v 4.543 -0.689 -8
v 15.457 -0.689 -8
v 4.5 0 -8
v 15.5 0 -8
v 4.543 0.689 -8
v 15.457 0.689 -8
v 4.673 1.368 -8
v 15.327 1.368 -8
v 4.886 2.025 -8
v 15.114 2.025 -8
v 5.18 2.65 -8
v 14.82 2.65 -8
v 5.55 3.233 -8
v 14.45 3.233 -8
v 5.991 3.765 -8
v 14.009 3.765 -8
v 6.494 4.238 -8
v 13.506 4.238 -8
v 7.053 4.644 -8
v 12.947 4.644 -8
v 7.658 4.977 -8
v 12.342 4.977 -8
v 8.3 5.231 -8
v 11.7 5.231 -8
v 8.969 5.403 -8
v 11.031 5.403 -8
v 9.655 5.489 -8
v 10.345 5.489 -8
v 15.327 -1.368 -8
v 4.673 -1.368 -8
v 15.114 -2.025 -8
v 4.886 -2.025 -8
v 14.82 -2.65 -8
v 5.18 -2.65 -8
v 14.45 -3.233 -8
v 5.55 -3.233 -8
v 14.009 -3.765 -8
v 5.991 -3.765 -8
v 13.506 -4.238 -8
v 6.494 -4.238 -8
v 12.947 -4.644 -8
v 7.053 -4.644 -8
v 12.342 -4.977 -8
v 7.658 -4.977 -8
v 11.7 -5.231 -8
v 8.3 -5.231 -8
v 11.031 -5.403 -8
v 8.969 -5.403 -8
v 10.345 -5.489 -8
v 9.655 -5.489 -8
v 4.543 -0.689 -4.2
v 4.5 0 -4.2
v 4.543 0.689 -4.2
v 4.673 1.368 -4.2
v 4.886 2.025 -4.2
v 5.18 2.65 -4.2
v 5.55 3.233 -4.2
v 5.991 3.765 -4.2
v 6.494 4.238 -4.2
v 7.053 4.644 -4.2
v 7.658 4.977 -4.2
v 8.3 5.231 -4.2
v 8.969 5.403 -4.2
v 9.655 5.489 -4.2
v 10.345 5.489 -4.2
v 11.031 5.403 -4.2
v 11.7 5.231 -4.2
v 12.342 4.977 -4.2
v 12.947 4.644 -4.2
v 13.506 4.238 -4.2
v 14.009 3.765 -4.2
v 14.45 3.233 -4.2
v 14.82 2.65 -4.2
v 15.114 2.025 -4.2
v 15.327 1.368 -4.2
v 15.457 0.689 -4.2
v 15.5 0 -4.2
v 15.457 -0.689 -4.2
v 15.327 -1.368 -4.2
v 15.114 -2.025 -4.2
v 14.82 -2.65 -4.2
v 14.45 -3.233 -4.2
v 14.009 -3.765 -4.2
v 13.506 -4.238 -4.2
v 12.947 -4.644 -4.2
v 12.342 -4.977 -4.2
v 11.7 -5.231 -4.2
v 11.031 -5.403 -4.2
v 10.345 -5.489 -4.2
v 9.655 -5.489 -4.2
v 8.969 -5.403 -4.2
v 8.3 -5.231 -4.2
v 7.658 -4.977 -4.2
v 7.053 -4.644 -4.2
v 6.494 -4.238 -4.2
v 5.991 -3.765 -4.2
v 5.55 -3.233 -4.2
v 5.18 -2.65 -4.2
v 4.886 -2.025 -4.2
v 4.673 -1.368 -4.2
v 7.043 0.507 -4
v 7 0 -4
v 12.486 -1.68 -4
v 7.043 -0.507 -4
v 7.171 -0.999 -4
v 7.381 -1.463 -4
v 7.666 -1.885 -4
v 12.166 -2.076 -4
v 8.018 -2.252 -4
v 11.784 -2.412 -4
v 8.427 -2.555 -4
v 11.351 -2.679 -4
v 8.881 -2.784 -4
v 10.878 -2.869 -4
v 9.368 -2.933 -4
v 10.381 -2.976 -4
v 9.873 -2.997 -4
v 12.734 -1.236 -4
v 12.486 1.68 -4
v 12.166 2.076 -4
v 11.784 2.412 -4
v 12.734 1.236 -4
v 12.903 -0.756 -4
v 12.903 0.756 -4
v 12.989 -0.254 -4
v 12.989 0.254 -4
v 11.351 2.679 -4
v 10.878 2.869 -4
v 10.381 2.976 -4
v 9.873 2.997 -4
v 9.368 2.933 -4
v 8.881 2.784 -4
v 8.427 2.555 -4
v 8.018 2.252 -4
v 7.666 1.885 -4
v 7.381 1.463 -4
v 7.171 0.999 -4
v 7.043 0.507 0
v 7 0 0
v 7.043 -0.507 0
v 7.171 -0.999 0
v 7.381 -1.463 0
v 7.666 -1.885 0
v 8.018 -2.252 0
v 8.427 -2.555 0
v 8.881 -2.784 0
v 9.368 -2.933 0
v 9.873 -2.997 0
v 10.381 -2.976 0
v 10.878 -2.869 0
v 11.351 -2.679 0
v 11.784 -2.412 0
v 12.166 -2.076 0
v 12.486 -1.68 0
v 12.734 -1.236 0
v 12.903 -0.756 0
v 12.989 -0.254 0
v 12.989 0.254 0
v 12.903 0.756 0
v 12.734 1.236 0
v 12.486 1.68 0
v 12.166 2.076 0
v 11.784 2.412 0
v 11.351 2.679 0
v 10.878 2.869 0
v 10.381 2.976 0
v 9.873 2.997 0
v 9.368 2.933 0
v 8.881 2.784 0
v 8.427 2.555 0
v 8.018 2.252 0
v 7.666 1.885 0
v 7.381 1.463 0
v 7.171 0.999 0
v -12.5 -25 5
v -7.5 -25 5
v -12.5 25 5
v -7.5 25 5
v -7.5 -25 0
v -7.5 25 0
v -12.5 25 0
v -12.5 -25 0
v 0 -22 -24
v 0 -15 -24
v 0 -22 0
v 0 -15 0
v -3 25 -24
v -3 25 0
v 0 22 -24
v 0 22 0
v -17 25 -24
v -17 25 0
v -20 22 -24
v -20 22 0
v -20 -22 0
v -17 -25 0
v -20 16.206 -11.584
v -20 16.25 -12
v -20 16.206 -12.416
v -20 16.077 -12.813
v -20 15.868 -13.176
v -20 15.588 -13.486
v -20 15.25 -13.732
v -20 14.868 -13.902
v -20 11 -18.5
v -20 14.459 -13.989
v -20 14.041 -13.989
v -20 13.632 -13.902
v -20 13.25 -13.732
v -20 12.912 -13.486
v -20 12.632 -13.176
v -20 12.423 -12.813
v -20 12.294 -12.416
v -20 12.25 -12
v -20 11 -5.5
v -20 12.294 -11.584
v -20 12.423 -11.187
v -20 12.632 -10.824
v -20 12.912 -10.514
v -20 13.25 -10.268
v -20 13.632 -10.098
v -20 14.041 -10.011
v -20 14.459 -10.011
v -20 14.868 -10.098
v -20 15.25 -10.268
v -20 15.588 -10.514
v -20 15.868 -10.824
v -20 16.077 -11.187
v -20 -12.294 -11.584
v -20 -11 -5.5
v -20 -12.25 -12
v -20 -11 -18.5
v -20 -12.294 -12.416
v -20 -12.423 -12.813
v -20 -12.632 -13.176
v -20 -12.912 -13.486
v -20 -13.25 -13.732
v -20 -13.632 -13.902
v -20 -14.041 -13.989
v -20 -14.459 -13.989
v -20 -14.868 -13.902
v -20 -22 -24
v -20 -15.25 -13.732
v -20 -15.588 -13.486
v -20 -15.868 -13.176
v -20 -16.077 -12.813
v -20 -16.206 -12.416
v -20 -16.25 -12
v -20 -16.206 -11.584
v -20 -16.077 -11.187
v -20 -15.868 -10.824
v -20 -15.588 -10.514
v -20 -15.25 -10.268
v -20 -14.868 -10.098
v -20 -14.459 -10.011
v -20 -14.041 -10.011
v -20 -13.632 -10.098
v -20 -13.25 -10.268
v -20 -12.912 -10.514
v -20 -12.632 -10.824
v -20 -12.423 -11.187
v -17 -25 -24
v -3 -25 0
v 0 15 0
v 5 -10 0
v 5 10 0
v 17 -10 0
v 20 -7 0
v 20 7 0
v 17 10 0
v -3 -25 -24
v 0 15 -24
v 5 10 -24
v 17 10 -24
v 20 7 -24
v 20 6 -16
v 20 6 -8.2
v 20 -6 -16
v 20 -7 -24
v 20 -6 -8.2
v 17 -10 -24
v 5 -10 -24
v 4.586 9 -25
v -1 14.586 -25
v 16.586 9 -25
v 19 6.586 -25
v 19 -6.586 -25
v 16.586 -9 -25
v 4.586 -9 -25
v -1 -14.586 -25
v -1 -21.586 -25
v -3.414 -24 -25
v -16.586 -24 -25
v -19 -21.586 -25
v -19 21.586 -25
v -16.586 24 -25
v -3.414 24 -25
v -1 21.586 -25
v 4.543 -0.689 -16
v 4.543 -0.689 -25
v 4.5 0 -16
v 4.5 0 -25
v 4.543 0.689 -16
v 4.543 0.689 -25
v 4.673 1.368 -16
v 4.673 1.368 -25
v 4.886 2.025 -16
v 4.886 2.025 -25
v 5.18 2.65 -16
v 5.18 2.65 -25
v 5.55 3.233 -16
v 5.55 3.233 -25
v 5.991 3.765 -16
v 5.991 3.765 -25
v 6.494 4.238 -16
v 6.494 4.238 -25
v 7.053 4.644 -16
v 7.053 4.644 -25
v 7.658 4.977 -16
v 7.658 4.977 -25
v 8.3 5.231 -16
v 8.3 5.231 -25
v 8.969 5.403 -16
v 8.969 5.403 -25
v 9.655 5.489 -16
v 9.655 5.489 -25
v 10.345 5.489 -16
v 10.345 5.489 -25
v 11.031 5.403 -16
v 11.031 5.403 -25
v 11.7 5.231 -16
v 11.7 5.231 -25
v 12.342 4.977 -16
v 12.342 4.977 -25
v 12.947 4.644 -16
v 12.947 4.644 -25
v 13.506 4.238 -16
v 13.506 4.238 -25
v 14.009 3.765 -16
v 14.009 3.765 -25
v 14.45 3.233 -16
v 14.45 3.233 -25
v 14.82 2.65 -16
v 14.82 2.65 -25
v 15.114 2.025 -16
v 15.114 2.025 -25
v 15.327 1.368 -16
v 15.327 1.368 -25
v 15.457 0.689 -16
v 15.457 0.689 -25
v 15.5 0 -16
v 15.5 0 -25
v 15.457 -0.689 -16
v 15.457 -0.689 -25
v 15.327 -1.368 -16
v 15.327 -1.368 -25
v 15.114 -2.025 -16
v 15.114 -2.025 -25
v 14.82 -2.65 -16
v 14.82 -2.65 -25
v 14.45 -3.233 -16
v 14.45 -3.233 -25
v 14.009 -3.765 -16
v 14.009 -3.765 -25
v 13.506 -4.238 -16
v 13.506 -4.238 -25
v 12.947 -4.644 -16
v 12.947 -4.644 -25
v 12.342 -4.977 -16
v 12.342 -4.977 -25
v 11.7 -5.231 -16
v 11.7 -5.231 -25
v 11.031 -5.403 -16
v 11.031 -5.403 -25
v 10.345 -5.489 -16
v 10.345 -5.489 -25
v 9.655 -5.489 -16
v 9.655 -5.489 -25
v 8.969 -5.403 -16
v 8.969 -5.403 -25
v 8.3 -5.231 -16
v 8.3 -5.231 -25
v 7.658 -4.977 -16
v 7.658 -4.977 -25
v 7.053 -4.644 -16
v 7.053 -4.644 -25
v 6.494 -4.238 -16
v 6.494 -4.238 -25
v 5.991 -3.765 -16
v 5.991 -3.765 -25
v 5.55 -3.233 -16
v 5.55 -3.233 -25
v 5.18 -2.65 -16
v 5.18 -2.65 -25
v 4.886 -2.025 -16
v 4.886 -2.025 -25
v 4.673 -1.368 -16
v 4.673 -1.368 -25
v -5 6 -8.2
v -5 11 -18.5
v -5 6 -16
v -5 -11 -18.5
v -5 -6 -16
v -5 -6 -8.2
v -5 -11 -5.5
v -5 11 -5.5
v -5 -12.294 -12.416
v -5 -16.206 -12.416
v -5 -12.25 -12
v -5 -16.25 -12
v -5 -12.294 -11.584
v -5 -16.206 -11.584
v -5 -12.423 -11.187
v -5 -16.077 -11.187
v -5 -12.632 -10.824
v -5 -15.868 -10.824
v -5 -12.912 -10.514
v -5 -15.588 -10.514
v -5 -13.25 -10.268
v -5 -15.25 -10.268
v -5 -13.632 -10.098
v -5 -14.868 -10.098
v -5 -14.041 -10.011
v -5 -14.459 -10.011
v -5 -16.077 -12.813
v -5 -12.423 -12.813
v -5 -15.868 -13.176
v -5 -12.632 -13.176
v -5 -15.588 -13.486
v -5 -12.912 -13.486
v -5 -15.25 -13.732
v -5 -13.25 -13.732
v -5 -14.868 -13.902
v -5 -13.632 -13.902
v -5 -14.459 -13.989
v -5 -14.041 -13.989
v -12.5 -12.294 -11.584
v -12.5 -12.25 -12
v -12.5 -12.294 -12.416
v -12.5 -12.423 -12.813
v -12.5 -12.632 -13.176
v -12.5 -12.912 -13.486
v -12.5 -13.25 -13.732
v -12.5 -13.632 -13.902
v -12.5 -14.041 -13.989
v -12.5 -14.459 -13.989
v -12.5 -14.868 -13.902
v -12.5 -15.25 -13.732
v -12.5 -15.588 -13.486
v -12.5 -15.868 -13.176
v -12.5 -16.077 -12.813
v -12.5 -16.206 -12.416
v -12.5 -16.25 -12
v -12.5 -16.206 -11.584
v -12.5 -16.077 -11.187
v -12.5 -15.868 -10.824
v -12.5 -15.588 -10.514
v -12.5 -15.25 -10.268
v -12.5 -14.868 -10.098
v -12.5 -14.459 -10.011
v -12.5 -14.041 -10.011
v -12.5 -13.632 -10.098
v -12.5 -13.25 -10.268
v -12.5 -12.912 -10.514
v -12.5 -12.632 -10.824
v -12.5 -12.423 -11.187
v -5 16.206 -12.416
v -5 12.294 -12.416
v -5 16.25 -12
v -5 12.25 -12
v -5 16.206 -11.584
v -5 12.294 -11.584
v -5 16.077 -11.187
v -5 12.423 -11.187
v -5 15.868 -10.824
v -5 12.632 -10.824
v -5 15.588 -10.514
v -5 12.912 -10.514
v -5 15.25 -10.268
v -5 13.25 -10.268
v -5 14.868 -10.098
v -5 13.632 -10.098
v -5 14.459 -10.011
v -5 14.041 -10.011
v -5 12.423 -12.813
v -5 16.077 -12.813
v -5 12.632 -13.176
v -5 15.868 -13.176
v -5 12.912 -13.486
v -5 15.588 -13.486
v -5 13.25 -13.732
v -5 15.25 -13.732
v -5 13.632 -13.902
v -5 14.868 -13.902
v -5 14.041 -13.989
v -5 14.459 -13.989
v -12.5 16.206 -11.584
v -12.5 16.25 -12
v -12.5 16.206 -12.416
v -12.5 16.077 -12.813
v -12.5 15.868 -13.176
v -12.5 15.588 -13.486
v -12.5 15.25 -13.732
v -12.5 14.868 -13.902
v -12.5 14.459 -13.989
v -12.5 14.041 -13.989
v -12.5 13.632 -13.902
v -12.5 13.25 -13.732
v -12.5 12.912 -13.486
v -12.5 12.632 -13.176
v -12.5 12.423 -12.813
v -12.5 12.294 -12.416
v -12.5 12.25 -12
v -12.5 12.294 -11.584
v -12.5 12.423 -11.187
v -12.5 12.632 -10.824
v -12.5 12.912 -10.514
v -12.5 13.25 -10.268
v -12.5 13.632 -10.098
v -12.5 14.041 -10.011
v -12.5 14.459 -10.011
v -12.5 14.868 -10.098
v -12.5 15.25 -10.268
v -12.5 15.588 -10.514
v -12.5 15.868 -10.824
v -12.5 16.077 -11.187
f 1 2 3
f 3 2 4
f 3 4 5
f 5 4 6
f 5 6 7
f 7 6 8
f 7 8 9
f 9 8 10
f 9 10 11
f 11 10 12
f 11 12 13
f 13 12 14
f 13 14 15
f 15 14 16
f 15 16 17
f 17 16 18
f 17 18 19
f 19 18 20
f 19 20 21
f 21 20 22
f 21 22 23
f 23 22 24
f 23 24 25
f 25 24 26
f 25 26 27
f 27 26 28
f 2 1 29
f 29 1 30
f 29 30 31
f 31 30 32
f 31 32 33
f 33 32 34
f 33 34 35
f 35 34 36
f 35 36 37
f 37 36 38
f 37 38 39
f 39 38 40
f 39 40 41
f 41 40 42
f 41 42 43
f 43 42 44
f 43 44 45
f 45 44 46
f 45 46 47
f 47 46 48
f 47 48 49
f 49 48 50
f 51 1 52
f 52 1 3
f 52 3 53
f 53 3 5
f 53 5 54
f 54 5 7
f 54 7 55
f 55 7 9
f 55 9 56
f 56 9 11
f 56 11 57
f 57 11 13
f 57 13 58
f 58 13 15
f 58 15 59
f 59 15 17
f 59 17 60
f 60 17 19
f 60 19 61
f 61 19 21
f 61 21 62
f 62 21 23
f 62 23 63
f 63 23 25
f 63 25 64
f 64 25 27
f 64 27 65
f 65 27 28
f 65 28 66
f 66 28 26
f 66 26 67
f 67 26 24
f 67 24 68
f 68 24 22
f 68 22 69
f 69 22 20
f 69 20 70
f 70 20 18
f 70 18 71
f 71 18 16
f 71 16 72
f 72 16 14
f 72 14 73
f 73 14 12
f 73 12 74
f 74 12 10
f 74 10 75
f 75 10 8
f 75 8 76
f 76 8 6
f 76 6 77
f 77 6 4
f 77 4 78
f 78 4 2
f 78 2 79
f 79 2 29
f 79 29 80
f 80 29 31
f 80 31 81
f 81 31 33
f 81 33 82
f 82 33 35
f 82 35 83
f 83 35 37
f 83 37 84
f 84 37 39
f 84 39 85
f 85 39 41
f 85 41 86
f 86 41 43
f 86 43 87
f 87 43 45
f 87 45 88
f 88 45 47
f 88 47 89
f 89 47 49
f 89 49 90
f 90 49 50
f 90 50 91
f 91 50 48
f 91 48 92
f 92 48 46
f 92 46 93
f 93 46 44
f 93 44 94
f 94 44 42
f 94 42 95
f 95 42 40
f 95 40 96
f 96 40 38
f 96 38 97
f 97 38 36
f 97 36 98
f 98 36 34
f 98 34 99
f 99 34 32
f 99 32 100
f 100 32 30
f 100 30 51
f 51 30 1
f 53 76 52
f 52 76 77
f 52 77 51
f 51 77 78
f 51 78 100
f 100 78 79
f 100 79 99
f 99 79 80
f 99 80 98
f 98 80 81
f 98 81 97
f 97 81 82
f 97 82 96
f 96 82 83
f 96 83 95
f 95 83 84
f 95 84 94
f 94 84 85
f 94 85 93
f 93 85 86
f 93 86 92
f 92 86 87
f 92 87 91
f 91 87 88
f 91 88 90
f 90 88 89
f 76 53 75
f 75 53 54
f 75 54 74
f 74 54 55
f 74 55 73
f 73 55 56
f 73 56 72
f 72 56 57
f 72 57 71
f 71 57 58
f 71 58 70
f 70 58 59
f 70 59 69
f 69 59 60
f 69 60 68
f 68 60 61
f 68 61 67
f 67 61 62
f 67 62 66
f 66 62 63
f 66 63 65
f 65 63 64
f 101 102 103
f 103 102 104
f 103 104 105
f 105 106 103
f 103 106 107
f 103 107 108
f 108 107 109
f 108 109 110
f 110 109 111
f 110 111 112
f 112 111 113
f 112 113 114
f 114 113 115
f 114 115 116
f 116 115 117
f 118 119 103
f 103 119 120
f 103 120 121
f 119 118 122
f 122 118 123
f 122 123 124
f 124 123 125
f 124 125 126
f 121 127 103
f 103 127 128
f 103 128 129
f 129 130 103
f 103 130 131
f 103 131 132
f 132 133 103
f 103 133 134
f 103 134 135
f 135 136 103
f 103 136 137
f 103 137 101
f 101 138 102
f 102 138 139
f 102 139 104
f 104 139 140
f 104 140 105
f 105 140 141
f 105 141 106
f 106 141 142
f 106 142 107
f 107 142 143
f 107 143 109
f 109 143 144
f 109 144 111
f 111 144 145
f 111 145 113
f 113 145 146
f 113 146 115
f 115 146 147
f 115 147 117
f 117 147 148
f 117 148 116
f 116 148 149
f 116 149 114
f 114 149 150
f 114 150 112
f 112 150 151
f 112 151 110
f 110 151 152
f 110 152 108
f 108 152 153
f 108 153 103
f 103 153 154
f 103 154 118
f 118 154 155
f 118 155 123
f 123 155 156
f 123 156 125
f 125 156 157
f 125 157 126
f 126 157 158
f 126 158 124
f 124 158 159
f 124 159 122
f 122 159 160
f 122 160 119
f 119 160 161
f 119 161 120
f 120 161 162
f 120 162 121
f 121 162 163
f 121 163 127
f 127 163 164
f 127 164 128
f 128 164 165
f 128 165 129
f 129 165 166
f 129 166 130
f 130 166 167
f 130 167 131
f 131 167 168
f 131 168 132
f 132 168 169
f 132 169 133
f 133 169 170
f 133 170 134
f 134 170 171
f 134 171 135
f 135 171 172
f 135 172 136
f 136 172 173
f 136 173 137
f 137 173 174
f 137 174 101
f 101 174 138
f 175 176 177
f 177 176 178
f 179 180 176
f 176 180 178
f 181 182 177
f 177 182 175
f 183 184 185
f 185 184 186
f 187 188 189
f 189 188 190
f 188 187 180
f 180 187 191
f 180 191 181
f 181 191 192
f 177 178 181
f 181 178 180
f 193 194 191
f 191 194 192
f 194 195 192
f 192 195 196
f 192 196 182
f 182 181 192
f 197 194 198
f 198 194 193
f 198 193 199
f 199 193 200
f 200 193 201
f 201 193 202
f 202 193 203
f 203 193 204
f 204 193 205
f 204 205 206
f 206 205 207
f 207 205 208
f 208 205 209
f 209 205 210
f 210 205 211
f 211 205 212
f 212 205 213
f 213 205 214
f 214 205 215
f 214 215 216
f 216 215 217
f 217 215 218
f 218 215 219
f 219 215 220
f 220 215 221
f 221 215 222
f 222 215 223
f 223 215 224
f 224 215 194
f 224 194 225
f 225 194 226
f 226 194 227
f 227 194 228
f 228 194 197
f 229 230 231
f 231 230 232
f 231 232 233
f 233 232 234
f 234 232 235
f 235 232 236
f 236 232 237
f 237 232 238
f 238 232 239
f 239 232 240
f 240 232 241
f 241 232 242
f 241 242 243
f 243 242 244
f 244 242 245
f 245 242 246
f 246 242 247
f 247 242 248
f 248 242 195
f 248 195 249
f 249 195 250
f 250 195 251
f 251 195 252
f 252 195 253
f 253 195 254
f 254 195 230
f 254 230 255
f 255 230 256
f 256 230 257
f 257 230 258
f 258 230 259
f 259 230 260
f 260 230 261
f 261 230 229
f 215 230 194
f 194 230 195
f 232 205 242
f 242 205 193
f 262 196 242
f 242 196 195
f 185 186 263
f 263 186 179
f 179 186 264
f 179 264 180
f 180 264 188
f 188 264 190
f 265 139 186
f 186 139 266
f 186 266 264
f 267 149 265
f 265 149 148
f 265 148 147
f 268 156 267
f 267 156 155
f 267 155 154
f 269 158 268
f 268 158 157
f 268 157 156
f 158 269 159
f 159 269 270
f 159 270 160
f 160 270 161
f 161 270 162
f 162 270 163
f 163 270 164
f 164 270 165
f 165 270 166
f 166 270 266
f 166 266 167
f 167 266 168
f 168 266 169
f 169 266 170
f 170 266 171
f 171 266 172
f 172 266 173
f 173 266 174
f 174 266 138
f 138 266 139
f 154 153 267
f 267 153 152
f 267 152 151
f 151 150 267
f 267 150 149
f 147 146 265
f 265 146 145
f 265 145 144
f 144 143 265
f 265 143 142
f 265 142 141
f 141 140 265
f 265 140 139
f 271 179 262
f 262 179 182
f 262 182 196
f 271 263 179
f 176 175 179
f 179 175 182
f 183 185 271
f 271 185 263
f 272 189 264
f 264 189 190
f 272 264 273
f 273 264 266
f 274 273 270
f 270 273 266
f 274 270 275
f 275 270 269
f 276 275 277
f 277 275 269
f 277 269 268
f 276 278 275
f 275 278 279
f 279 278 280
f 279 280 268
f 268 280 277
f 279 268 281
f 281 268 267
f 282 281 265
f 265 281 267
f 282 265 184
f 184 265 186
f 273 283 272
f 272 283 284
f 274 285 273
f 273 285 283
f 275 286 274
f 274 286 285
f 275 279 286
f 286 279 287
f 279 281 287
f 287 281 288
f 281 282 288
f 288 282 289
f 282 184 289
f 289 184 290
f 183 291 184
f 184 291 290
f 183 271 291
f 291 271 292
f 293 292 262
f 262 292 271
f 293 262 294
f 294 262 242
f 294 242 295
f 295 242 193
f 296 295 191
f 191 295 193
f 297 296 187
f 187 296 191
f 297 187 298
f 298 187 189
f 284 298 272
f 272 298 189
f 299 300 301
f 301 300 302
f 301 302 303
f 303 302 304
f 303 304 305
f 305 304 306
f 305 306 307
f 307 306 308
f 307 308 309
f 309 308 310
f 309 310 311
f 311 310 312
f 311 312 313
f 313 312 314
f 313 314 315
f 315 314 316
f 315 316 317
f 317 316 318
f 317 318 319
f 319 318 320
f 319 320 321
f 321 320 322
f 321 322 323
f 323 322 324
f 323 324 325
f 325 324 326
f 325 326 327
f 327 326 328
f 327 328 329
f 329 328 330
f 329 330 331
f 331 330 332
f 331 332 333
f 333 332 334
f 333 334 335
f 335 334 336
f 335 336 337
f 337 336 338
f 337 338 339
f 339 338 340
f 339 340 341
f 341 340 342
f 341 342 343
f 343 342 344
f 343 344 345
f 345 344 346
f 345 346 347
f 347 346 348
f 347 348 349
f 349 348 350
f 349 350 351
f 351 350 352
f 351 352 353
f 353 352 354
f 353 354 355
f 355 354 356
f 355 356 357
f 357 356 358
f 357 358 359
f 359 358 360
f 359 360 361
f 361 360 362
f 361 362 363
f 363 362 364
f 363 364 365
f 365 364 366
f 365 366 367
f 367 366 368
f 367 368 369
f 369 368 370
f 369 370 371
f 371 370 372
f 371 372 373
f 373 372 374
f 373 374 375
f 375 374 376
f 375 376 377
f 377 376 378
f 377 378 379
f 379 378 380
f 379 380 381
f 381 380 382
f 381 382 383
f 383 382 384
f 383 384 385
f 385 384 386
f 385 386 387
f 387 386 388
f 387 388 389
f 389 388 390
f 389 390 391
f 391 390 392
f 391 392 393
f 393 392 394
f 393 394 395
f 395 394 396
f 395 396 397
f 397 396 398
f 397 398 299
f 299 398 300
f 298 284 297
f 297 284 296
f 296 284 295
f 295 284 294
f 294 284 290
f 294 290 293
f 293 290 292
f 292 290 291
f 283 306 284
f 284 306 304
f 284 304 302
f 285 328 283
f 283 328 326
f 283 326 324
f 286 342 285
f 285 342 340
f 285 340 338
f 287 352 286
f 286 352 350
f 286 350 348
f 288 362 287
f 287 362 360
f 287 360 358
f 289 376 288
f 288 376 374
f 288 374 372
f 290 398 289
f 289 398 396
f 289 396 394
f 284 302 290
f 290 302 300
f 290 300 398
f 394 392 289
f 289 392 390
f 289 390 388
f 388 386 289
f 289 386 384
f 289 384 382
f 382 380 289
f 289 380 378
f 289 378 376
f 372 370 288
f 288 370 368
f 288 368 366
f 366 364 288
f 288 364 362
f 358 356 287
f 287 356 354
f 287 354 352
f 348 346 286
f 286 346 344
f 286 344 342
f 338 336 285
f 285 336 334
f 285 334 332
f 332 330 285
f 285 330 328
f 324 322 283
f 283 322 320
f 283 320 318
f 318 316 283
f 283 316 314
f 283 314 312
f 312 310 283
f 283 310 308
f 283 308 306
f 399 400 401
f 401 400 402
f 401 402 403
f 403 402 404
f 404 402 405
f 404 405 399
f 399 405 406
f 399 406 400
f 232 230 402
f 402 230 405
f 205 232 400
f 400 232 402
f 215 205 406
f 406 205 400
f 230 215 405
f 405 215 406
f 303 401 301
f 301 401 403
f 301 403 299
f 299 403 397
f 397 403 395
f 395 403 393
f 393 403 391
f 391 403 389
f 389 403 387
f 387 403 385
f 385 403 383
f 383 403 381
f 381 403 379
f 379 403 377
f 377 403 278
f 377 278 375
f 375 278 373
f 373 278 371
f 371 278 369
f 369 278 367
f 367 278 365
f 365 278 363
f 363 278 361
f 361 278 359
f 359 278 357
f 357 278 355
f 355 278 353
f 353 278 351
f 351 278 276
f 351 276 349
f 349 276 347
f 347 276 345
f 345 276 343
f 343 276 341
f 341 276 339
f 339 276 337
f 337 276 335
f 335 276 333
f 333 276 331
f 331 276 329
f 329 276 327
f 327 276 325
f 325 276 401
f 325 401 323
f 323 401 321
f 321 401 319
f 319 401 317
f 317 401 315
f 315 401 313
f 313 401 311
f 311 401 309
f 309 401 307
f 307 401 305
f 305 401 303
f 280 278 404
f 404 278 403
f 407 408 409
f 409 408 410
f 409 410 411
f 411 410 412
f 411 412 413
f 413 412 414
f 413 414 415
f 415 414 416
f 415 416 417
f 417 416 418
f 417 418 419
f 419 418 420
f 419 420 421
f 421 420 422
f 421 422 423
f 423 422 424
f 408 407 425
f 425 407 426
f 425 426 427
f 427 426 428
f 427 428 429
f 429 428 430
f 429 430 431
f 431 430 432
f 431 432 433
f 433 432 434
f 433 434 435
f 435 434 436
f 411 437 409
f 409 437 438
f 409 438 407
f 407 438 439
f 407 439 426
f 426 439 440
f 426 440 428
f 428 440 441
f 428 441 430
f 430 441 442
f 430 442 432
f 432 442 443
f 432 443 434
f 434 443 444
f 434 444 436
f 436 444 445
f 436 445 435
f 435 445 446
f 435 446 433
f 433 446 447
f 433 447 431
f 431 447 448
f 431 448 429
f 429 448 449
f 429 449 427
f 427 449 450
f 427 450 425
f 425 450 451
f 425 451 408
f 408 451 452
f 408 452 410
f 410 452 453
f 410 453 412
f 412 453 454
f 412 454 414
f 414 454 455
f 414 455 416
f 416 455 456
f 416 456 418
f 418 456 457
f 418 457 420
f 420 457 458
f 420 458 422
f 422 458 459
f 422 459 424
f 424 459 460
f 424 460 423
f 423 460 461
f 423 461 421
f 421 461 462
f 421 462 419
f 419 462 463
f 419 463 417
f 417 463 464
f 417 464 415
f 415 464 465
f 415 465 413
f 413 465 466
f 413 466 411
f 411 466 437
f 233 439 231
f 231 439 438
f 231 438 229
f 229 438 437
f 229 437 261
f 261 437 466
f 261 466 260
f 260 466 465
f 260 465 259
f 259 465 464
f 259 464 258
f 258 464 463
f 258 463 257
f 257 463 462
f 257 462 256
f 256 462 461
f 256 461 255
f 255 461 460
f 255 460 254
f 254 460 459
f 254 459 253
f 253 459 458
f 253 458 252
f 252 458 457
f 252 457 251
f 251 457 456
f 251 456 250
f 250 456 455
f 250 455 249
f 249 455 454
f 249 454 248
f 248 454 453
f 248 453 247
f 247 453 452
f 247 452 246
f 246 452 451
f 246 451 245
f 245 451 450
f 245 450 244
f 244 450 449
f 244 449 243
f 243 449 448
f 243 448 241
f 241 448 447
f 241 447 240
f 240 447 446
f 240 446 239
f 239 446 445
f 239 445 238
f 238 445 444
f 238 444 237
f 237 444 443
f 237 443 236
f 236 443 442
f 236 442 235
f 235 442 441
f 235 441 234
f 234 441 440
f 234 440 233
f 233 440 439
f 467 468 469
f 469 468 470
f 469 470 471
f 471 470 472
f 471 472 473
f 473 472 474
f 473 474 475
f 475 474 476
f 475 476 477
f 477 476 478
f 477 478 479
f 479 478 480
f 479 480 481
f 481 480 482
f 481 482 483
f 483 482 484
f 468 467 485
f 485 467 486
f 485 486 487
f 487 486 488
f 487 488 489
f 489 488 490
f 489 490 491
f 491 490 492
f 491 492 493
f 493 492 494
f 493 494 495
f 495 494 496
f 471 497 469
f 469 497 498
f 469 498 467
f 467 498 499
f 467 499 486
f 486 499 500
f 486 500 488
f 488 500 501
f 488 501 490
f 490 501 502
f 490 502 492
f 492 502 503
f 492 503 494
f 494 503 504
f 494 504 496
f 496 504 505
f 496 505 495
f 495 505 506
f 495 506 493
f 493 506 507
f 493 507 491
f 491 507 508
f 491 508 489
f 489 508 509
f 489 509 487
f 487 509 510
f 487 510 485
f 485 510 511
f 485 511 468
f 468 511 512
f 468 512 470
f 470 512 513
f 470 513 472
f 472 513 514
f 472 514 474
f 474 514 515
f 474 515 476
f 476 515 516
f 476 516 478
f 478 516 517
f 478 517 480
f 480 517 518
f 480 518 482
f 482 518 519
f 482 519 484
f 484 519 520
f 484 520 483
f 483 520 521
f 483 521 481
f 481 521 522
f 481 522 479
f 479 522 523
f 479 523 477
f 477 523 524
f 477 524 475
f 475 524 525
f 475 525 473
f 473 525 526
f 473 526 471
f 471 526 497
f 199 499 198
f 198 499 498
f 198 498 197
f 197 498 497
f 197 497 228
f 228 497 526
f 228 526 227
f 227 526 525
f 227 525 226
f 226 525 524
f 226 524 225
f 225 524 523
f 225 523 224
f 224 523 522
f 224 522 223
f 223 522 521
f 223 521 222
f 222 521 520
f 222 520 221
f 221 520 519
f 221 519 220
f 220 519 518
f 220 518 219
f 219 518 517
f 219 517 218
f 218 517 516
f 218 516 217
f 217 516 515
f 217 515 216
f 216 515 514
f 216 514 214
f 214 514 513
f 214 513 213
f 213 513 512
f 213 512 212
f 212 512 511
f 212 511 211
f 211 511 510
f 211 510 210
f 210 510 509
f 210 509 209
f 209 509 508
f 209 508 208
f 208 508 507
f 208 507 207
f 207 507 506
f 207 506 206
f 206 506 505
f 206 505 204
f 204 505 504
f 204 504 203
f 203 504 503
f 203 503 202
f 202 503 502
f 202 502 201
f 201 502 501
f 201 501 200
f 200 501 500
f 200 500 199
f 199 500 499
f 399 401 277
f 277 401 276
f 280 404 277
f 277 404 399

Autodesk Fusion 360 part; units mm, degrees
sketch "Szkic1" plane through (0, 0, 0) normal (0, 0, 1) x (1, 0, 0)
  line L0 (-20, 25) -> (-20, -25)
  line L1 (-20, -25) -> (0, -25)
  line L2 (0, -25) -> (0, 25)
  line L3 (0, 25) -> (-20, 25)
  line L4 (0, 10) -> (0, -10)
  line L5 (0, -10) -> (20, -10)
  line L6 (20, -10) -> (20, 10)
  line L7 (20, 10) -> (0, 10)
  circle A0 centre (10, 0) radius 3
  circle A1 centre (10, 0) radius 5.5
  line L8 (-12.5, 25) -> (-7.5, 25)
  line L9 (-7.5, 25) -> (-7.5, -25)
  line L10 (-7.5, -25) -> (-12.5, -25)
  line L11 (-12.5, -25) -> (-12.5, 25)
  dimension "d1" = 6
  dimension "d2" = 11
extrude "Wyciągnięcie proste1" add sketch "Szkic1" against normal blind 25 contours L0 L1 L3 L11 | L1 L3 L8 L9 L10 L11 | L1 L2 L3 L4 L9 | L2 L4 L5 L6 L7
extrude "Wyciągnięcie proste2" add sketch "Szkic1" against normal blind 4.2 contours A0 | A1
extrude "Wyciągnięcie proste3" cut sketch "Szkic1" against normal blind 4 contours A0
extrude "Wyciągnięcie proste4" add sketch "Szkic1" along normal blind 5 contours L1 L3 L8 L9 L10 L11
chamfer "Fazowanie1" distance 5 angle 45 1 edges at (0, -10, -12.5)
chamfer "Fazowanie2" distance 5 angle 45 1 edges at (0, 10, -12.5)
chamfer "Fazowanie3" distance 3 angle 45 6 edges at (20, 10, -12.5) (20, -10, -12.5) (0, 25, -12.5) (-20, 25, -12.5) (-20, -25, -12.5) (0, -25, -12.5)
chamfer "Fazowanie4" distance 1 angle 45 1 faces at (-11.8333, 0, -25)
delete_face "Usuń powierzchnię1" 1 faces at (16.159, -0.3074, -24.6667)
sketch "Szkic2" plane through (-20, 0, 0) normal (-1, 0, 0) x (0, -1, 0)
  line L0 (-22, -24) -> (22, -24)
  line L1 (22, -24) -> (22, 0)
  line L2 (22, 0) -> (-22, 0)
  line L3 (-22, 0) -> (-22, -24)
  line L4 (0, -12) -> (12.5, -12)
  line L5 (0, -12) -> (-12.5, -12)
  line L6 (0, -12) -> (12.5, -12)
  line L7 (0, -12) -> (-12.5, -12)
  line L8 (17.5, -4.5) -> (-17.5, -4.5)
  line L9 (-17.5, -4.5) -> (-17.5, -19.5)
  line L10 (-17.5, -19.5) -> (17.5, -19.5)
  line L11 (17.5, -19.5) -> (17.5, -4.5)
  line L12 (17.5, -4.5) -> (-17.5, -19.5) construction
  line L13 (-17.5, -4.5) -> (17.5, -19.5) construction
  line L14 (11, -5.5) -> (-11, -5.5)
  line L15 (-11, -5.5) -> (-11, -18.5)
  line L16 (-11, -18.5) -> (11, -18.5)
  line L17 (11, -18.5) -> (11, -5.5)
  line L18 (11, -5.5) -> (-11, -18.5) construction
  line L19 (-11, -5.5) -> (11, -18.5) construction
  circle A0 centre (-14.25, -12) radius 2
  circle A1 centre (14.25, -12) radius 2
  line L20 (6, -16) -> (-6, -16)
  line L21 (-6, -16) -> (-6, -8)
  line L22 (-6, -8) -> (6, -8)
  line L23 (6, -8) -> (6, -16)
  line L24 (6, -16) -> (-6, -8) construction
  line L25 (-6, -16) -> (6, -8) construction
  point P0 (0, -12)
  point P1 (0, -12)
  point P2 (0, -12)
  dimension "d15" = 12.5
  dimension "d16" = 12.5
  dimension "d18" = 4
  dimension "d19" = 4
extrude "Wyciągnięcie proste5" cut sketch "Szkic2" against normal blind 15 contours L4 L5 L6 L7 L21 L22 L23 | L4 L5 L6 L7 L20 L21 L23 | L4 L5 L6 L7 L14 L15 L17 L21 L22 L23 | L4 L5 L6 L7 L15 L16 L17 L20 L21 L23
extrude "Wyciągnięcie proste6" cut sketch "Szkic2" against normal blind 300 contours L4 L5 L6 L7 L21 L22 L23 | L4 L5 L6 L7 L20 L21 L23
extrude "Wyciągnięcie proste7" cut sketch "Szkic2" against normal blind 15 contours A1 | A0
sketch "Szkic3" plane through (0, 0, -8) normal (0, 0, -1) x (1, 0, 0)
  line L0 (-5, 6) -> (-5, -6)
  line L1 (-5, -6) -> (20, -6)
  line L2 (20, -6) -> (20, 6)
  line L3 (20, 6) -> (-5, 6)
  circle A0 centre (10, 0) radius 5.5
extrude "Wyciągnięcie proste8" add sketch "Szkic3" along normal blind 0.2 contours L0 L1 L2 L3 | A0
